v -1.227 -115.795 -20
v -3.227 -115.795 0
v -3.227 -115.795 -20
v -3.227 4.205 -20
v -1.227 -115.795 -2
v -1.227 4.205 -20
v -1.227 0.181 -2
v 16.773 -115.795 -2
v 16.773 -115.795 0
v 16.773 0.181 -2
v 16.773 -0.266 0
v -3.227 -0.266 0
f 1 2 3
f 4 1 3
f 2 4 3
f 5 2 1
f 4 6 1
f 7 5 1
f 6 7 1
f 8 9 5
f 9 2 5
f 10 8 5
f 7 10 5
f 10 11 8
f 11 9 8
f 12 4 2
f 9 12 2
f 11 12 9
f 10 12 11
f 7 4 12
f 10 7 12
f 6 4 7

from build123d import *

# Parameters (mm, degrees)
SKETCH1_W           = 20
SKETCH1_H           = 120
BOSS_EXTRUDE1_DEPTH = 20
CUT_EXTRUDE2_DEPTH  = 20
SKETCH5_W           = 18
SKETCH5_H           = 18
CUT_EXTRUDE4_DEPTH  = 120


with BuildPart() as part:
    # Sketch1 → Boss-Extrude1 (new body)
    with BuildSketch(Plane.XY):
        with Locations((6.772727273, -55.795454545)):
            Rectangle(SKETCH1_W, SKETCH1_H)
    extrude(amount=-BOSS_EXTRUDE1_DEPTH)

    # Sketch4 → Cut-Extrude2 (cut)
    with BuildSketch(Plane.ZY.offset(3.227272727)):
        Polygon((-20, 4.204545455), (0, -0.265984203), (0, 4.204545455), align=None)
    extrude(amount=-CUT_EXTRUDE2_DEPTH, mode=Mode.SUBTRACT)

    # Sketch5 → Cut-Extrude4 (cut)
    with BuildSketch(Plane.XZ.offset(115.795454545)):
        with Locations((7.772727273, -11)):
            Rectangle(SKETCH5_W, SKETCH5_H)
    extrude(amount=-CUT_EXTRUDE4_DEPTH, mode=Mode.SUBTRACT)


solid = part.part
